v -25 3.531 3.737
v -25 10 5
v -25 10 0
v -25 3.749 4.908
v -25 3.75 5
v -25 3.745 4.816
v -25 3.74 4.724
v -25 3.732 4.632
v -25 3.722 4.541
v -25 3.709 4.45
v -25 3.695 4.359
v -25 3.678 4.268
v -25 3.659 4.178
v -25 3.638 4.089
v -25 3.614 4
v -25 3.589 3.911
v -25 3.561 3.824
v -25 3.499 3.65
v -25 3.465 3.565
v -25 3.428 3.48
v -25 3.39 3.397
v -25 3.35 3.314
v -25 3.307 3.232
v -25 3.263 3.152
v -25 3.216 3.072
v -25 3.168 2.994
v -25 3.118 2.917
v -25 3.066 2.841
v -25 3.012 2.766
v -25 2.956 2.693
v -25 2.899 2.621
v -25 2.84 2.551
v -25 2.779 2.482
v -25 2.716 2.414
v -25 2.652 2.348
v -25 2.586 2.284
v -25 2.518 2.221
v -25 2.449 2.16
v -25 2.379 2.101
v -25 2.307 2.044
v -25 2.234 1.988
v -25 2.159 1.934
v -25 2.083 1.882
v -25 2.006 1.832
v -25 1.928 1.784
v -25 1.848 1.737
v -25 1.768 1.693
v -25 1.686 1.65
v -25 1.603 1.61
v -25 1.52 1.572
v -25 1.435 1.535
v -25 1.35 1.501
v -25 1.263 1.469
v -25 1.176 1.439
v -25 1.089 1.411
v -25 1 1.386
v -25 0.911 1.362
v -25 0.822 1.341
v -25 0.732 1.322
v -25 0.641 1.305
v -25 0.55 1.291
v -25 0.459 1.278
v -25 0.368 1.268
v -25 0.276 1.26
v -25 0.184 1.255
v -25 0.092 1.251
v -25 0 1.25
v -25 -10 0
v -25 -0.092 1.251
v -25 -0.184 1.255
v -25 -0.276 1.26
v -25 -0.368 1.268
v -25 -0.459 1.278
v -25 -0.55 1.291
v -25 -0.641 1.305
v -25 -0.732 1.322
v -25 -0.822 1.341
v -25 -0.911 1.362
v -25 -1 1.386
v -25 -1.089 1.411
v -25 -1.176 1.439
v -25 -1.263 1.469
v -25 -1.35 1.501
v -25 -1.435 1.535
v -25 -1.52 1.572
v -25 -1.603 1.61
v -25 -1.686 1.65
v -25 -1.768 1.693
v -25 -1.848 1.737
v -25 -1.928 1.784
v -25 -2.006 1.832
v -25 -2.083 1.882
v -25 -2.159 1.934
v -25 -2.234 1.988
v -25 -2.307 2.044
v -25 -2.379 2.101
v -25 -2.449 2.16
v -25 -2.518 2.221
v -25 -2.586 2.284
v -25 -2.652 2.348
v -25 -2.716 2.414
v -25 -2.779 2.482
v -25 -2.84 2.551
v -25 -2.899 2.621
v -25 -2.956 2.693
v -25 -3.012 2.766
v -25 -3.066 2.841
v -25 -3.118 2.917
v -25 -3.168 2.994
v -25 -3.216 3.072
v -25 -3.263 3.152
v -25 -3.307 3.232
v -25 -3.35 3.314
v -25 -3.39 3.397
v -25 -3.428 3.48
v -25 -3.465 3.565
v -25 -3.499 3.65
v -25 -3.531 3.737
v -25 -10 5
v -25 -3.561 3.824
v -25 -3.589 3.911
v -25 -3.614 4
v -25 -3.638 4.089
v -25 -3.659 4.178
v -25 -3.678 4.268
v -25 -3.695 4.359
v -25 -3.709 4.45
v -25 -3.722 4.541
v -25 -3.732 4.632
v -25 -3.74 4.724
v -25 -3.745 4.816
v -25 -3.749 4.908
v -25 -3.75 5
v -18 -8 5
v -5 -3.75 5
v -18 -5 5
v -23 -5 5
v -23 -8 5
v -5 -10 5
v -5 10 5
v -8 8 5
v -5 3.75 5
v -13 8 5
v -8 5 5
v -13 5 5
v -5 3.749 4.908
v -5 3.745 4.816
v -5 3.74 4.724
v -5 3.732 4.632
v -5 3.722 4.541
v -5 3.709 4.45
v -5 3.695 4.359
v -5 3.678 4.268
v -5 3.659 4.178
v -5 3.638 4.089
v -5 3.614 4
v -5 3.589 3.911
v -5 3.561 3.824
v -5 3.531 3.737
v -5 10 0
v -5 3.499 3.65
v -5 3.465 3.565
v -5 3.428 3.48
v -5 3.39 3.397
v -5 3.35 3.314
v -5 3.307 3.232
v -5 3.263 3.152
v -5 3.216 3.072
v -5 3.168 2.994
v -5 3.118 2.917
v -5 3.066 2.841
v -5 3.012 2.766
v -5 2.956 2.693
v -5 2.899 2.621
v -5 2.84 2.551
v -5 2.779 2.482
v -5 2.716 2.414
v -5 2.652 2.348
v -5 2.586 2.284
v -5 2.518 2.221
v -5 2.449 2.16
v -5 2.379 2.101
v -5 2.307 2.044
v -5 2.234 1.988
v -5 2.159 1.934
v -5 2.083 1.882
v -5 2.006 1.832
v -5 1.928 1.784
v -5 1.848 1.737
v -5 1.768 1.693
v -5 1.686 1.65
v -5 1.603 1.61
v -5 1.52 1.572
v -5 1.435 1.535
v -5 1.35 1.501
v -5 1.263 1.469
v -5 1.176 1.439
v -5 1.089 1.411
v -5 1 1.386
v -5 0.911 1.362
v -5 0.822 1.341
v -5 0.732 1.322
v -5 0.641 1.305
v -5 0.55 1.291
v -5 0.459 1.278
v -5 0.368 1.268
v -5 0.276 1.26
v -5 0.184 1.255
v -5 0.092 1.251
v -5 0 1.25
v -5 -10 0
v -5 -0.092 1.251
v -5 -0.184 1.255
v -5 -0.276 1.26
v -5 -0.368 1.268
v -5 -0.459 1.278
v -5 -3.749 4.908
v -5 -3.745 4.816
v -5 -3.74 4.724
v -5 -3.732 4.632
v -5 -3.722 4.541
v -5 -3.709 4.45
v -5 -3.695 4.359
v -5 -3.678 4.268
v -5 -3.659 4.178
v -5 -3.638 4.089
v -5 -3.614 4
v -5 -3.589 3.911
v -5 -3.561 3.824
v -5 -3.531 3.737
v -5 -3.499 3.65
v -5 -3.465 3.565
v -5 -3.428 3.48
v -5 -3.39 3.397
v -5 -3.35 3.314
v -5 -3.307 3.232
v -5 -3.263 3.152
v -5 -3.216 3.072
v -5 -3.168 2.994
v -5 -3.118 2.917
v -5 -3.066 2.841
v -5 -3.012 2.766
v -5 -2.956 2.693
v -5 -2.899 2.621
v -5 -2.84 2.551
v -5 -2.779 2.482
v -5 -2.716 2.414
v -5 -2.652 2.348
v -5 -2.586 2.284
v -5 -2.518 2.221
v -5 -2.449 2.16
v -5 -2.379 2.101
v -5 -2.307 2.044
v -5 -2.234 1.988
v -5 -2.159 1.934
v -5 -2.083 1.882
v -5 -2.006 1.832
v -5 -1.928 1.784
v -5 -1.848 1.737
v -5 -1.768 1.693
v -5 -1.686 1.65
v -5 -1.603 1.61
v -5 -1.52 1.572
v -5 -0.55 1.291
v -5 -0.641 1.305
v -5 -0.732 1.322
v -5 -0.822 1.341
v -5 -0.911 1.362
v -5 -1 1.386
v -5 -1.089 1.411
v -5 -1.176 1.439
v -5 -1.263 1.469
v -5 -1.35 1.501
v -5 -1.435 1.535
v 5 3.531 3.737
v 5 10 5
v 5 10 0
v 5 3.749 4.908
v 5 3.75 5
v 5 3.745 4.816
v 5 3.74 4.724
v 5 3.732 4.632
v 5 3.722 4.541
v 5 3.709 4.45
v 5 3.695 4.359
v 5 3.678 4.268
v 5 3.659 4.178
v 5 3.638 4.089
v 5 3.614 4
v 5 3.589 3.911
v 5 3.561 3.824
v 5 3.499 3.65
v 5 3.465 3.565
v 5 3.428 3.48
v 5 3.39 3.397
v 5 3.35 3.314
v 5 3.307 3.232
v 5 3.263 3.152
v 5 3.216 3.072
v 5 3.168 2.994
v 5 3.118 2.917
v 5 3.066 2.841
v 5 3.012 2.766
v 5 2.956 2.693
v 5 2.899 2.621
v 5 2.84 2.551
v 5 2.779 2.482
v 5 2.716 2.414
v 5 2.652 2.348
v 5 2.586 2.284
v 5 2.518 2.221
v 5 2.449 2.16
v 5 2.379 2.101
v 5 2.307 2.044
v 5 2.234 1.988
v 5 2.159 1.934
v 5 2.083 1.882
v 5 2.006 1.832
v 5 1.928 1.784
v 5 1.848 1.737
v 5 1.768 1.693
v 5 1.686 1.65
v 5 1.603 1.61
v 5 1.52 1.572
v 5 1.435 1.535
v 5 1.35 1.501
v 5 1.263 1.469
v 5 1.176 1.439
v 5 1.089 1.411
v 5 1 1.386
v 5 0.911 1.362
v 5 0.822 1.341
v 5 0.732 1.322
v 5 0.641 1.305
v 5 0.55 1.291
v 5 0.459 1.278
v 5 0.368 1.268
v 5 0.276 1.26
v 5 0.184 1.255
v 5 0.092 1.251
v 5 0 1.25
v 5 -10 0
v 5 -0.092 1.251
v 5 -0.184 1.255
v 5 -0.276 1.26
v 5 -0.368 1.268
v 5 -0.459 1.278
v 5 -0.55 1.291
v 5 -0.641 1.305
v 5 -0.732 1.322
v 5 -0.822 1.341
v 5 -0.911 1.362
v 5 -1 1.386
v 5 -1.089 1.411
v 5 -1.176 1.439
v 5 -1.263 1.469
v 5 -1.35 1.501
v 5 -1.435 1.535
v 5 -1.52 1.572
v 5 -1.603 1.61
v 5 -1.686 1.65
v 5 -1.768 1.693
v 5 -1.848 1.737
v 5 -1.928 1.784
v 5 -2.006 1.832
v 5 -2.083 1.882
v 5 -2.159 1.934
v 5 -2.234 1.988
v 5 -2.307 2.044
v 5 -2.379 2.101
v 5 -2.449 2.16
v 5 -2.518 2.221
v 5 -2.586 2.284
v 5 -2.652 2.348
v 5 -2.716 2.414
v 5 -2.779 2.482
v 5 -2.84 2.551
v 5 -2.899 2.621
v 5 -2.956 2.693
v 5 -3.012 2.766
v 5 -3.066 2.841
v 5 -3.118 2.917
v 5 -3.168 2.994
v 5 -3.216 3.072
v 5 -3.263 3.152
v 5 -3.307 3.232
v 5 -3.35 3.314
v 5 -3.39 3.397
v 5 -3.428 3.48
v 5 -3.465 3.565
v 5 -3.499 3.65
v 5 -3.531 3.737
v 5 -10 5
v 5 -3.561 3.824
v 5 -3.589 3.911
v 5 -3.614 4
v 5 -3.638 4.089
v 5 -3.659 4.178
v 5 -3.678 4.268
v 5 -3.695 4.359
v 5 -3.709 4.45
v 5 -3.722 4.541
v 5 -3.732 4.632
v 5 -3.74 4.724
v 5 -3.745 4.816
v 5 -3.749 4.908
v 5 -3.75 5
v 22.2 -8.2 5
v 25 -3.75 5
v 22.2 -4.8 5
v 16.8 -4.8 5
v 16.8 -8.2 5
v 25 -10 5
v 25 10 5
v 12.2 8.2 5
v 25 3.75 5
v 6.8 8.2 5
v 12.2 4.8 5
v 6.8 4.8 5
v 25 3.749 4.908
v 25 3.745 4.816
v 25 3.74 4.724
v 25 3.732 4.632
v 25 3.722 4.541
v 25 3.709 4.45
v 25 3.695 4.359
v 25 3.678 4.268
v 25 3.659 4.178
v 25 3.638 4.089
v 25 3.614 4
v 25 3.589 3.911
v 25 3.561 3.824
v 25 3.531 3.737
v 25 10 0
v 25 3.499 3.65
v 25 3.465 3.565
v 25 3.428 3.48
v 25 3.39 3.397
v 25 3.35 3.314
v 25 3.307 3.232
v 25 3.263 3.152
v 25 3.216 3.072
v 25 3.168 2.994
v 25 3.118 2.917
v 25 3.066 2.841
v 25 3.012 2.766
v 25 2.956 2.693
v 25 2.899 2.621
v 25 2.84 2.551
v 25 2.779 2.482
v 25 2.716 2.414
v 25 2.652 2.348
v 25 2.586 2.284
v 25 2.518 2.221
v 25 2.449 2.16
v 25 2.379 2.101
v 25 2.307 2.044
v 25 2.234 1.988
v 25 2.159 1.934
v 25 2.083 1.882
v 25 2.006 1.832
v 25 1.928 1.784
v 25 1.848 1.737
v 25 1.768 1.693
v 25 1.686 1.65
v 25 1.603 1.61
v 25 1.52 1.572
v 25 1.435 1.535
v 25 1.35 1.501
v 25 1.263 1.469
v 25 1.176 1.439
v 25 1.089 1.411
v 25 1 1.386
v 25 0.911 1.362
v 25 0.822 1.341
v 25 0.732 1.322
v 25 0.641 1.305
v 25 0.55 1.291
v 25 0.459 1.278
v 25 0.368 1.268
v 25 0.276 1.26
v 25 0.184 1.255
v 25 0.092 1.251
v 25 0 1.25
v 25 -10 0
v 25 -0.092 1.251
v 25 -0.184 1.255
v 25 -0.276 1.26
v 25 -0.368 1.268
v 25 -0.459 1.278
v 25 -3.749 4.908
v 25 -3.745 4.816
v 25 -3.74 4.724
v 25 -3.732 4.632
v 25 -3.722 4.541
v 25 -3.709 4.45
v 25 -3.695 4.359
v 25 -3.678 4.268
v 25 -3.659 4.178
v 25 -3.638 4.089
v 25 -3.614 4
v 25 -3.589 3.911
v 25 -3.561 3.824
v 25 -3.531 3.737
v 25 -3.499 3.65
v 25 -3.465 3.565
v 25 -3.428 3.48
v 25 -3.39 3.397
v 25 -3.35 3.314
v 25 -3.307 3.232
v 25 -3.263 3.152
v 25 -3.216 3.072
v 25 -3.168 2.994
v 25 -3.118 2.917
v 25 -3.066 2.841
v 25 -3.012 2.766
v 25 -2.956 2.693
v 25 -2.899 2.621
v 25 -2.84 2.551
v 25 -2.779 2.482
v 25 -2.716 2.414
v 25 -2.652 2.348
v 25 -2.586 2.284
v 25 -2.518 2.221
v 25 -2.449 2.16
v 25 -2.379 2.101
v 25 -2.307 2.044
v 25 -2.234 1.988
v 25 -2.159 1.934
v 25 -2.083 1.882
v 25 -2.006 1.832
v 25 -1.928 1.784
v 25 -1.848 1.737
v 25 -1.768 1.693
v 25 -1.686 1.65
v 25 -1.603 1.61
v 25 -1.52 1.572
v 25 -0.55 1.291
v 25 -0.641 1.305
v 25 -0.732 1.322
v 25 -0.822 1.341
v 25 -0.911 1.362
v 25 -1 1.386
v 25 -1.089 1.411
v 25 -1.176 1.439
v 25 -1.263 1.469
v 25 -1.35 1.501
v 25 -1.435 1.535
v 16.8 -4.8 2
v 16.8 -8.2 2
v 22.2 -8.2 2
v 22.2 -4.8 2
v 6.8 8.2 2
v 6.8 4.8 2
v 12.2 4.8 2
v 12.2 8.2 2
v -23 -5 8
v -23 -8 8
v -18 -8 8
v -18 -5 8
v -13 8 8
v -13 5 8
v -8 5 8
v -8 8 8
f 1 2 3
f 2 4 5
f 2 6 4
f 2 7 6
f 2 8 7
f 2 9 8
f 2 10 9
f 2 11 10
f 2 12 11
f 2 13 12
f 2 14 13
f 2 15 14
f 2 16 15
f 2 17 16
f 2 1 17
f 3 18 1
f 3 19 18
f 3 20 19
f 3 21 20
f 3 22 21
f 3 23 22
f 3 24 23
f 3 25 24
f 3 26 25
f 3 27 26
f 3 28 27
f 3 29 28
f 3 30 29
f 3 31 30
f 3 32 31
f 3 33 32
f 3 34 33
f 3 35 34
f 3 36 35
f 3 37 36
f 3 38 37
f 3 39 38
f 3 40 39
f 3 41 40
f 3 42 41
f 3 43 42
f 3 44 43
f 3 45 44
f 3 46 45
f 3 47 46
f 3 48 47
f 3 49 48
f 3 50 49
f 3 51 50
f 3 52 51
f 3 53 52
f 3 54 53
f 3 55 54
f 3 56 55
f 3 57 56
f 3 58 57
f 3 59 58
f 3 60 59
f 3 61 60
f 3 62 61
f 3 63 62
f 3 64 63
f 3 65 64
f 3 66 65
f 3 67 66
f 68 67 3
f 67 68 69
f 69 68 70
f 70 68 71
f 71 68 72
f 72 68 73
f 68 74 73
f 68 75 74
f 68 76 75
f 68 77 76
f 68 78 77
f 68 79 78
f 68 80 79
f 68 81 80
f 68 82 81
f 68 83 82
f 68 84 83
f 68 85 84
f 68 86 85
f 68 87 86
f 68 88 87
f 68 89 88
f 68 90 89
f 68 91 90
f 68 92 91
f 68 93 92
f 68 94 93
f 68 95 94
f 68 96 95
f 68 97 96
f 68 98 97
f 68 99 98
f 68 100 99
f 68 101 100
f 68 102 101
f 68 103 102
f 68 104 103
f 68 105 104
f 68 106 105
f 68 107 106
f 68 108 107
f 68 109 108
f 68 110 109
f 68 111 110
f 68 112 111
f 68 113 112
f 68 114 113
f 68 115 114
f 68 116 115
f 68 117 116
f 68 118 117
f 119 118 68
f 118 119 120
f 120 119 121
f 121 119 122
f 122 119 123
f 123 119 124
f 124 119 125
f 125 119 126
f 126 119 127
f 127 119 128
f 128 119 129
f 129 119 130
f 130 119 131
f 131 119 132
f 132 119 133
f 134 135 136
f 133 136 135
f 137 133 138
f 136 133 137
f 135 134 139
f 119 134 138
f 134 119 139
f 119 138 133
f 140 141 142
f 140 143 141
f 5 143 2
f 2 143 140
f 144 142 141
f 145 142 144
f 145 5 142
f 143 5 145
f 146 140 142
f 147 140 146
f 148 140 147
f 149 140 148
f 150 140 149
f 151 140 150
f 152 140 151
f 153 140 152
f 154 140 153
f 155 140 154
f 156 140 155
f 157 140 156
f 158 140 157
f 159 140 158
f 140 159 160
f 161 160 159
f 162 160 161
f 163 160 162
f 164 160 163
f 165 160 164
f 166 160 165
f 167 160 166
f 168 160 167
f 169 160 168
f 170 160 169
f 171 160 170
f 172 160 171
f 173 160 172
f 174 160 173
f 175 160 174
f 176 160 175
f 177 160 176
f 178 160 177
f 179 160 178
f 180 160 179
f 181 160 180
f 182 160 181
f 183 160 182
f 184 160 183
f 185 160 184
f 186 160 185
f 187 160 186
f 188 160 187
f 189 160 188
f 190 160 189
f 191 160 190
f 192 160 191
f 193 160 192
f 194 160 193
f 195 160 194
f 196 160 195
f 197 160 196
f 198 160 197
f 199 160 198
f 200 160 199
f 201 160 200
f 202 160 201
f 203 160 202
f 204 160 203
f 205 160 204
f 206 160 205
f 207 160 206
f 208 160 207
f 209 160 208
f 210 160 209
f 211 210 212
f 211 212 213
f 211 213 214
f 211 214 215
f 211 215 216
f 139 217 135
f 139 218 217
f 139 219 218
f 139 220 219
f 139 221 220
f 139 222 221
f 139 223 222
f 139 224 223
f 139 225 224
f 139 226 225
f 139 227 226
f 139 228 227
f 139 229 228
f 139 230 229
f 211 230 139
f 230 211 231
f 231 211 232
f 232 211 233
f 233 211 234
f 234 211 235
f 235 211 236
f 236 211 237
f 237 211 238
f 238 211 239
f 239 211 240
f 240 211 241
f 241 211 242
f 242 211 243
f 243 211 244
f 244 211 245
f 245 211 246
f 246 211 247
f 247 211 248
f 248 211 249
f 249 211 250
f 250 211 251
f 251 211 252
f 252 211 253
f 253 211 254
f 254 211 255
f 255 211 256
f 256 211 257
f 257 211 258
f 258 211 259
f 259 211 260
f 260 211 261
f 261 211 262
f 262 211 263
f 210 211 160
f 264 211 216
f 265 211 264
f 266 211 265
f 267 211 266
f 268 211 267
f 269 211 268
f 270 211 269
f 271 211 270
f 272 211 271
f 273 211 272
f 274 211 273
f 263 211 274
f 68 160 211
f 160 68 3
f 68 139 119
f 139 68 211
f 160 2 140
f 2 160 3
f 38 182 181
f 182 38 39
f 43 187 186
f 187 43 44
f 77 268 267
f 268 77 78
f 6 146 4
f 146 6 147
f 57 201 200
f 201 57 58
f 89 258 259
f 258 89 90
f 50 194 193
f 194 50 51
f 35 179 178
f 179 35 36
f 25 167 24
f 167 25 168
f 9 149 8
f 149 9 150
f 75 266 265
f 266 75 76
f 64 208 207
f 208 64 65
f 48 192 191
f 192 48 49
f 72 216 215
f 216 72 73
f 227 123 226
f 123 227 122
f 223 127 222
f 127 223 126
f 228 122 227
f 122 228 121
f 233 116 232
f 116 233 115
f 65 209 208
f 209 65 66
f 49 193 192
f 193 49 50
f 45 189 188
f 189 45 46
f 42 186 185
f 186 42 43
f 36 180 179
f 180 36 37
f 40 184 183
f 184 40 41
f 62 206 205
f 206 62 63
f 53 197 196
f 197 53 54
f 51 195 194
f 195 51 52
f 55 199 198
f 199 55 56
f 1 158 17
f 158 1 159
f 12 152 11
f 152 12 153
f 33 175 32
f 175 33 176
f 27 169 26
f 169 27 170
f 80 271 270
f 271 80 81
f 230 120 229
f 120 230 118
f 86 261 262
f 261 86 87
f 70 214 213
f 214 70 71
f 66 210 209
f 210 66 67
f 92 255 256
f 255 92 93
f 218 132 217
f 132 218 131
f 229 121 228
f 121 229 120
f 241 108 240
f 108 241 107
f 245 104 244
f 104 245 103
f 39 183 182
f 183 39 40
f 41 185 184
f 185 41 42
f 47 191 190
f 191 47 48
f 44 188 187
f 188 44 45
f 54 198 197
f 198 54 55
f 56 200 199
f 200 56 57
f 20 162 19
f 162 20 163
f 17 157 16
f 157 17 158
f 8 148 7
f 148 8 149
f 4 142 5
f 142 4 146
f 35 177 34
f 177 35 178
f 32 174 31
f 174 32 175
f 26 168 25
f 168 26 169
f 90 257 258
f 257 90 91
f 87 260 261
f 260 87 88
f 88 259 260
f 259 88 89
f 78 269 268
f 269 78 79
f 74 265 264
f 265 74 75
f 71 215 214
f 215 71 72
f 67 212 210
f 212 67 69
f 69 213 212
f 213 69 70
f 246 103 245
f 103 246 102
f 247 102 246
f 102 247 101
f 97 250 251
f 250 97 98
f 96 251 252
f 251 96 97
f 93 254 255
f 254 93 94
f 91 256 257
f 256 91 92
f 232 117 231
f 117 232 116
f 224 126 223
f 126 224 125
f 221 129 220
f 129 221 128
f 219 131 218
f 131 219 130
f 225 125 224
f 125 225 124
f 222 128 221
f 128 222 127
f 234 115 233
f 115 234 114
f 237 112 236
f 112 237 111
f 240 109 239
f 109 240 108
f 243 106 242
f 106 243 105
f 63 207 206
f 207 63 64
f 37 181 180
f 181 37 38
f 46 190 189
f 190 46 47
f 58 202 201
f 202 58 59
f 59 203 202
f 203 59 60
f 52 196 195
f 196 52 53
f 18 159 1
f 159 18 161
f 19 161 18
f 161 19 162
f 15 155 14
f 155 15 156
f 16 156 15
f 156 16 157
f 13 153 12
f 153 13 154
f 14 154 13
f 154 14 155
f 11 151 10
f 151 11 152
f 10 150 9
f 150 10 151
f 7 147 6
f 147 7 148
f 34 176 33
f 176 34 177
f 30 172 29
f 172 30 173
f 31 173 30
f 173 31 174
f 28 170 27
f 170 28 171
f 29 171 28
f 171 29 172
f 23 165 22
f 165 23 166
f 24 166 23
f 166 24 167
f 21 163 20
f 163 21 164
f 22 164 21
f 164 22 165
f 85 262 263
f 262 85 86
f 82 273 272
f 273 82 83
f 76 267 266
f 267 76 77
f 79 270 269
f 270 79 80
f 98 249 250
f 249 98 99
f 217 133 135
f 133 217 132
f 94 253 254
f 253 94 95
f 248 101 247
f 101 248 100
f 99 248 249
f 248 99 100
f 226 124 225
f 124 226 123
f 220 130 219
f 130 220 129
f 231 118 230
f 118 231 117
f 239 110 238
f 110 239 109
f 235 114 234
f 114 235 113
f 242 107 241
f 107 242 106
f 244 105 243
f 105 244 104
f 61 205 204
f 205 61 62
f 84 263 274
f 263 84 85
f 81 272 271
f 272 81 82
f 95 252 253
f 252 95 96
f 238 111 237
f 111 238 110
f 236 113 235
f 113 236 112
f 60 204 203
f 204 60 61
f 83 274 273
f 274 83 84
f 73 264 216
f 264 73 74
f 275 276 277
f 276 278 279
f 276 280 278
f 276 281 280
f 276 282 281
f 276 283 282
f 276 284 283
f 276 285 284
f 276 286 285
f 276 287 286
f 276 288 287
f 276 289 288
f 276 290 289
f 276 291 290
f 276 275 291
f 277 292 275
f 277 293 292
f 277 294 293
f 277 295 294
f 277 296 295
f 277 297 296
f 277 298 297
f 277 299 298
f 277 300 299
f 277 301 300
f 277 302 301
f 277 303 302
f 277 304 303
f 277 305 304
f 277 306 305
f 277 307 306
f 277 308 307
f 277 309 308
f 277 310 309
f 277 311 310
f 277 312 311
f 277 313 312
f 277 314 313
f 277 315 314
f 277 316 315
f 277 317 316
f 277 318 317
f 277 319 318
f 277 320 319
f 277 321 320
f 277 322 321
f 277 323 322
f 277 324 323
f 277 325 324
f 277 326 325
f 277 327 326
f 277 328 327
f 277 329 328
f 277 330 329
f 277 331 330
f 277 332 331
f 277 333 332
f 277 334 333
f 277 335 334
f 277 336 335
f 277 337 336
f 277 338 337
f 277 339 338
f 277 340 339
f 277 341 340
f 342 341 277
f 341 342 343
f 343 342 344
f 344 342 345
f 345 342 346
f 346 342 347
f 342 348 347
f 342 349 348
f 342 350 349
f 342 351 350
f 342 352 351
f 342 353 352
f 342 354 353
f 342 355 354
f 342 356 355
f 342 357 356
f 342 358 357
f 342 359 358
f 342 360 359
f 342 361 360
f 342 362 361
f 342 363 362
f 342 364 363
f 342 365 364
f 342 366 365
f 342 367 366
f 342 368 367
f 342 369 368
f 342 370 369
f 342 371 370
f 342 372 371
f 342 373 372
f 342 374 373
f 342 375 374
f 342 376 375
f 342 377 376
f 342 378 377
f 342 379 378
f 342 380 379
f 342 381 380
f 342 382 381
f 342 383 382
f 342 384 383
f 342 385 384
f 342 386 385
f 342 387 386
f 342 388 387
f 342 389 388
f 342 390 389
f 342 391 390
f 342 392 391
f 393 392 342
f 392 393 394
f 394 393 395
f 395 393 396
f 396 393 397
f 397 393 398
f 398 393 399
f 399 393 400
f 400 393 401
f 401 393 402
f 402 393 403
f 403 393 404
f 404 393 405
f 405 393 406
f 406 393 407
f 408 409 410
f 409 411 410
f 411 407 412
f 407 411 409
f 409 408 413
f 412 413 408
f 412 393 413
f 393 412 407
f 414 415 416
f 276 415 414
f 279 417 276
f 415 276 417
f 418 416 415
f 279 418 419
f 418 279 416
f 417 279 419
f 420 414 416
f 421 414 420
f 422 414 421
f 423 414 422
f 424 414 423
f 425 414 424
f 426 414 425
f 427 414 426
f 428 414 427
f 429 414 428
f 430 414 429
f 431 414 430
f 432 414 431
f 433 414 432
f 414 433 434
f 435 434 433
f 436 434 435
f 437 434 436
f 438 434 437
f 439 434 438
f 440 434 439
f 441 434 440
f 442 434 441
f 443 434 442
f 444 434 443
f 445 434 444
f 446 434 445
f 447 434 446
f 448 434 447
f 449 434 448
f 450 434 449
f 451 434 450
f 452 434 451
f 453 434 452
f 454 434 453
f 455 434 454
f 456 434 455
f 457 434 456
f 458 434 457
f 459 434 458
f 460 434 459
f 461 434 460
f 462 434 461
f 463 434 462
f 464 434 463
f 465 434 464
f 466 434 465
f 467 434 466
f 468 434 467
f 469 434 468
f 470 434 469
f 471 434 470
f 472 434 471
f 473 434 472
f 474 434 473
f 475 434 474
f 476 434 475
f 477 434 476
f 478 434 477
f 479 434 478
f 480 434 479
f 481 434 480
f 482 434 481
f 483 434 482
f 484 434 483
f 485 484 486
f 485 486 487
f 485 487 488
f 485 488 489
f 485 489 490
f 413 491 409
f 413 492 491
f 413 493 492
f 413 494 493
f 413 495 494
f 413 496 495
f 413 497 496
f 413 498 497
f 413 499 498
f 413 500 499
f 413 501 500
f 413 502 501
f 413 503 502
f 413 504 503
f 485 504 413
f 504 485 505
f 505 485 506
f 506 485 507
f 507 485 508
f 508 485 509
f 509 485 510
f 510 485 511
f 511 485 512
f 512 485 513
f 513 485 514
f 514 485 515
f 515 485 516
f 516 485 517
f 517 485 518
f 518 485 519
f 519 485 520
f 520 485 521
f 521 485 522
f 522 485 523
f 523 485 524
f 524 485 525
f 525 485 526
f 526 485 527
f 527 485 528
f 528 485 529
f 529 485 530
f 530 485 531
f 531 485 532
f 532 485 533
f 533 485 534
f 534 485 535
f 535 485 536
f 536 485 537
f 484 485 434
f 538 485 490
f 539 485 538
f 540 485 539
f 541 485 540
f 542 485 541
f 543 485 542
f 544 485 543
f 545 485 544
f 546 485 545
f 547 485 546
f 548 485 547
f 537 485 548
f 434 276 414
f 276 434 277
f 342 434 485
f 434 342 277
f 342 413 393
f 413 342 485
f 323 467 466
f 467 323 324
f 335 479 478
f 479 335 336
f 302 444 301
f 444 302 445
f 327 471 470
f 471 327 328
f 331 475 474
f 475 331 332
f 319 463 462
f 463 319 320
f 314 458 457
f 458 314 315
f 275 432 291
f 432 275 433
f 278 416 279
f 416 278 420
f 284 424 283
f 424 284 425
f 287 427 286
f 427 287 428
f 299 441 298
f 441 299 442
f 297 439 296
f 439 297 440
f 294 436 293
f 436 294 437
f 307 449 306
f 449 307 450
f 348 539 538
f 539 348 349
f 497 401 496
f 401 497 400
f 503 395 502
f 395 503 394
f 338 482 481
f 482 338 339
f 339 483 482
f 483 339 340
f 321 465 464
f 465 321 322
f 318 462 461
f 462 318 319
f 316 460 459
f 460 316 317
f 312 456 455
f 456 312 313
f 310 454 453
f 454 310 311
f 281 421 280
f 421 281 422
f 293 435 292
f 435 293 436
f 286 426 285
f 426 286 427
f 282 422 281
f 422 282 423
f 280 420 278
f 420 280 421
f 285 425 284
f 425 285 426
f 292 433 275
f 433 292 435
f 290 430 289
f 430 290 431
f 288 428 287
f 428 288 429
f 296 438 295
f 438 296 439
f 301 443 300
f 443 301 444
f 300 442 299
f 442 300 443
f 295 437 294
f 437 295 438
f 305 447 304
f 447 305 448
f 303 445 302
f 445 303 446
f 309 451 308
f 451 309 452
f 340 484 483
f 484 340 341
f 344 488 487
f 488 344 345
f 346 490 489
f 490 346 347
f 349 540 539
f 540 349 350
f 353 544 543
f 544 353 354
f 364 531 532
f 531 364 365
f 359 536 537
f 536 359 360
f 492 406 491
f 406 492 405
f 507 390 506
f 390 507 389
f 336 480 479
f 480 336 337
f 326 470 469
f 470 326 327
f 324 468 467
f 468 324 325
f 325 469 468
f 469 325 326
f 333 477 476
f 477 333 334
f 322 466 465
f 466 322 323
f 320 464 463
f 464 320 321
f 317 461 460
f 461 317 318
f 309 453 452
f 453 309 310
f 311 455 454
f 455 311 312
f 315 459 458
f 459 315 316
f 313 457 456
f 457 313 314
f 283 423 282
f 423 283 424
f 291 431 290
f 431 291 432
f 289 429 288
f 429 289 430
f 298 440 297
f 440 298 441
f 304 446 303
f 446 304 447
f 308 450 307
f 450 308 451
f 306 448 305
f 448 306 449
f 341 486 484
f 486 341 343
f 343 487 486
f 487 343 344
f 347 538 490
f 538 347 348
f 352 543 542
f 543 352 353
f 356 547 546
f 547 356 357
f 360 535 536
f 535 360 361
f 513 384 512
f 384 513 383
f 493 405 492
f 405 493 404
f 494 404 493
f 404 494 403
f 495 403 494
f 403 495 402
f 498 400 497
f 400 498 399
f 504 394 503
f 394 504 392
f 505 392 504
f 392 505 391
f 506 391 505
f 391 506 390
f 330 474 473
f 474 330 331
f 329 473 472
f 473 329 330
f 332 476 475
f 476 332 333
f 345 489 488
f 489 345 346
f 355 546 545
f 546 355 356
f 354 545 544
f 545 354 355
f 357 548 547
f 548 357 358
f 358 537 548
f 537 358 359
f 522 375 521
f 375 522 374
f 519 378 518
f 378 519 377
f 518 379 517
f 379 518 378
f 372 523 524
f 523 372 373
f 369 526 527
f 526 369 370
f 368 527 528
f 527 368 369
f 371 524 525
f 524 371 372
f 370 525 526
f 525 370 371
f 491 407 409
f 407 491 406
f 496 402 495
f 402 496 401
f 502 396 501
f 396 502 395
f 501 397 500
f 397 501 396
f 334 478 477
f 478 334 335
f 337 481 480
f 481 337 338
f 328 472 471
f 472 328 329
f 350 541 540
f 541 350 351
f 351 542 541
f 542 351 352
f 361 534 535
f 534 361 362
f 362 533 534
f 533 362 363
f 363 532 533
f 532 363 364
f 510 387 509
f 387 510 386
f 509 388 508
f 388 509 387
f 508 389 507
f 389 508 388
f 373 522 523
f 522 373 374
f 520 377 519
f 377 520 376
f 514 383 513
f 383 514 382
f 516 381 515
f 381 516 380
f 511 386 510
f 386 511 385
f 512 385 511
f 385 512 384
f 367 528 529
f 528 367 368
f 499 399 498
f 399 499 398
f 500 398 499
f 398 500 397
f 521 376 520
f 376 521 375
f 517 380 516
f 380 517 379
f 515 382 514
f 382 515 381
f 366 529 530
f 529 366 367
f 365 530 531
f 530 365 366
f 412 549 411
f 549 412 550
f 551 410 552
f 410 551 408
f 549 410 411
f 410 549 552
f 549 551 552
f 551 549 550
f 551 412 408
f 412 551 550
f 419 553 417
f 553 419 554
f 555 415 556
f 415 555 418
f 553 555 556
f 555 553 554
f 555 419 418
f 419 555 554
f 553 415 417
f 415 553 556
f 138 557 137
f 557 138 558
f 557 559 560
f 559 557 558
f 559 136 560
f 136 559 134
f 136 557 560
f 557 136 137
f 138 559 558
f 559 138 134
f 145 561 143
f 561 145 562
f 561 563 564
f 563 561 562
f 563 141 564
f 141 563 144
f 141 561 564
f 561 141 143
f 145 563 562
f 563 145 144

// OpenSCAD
cs = 256;

translate([-25, -10, 0]) {
    difference () {
        cube([20, 20, 5]);
        translate([-1, 10, 5]) rotate([90, 90, 90]) cylinder(h=22, d=7.5, $fn=cs);
    }
    translate([2, 2, 5]) cube([5,3,3]);
    translate([12, 15, 5]) cube([5,3,3]);

    /*rotate([180, 0, 0])*/ {
        /* translate([-30, -20, -15]) */ {
            difference () {
                translate([30, 0, 0]) cube([20, 20, 5]);
                translate([29, 10, 5]) rotate([90, 90, 90]) cylinder(h=22, d=7.5, $fn=cs);
                translate([41.8, 1.8, 2]) cube([5.4,3.4,4]);
                translate([31.8, 14.8, 2]) cube([5.4,3.4,4]);
            }
        }
    }
}
